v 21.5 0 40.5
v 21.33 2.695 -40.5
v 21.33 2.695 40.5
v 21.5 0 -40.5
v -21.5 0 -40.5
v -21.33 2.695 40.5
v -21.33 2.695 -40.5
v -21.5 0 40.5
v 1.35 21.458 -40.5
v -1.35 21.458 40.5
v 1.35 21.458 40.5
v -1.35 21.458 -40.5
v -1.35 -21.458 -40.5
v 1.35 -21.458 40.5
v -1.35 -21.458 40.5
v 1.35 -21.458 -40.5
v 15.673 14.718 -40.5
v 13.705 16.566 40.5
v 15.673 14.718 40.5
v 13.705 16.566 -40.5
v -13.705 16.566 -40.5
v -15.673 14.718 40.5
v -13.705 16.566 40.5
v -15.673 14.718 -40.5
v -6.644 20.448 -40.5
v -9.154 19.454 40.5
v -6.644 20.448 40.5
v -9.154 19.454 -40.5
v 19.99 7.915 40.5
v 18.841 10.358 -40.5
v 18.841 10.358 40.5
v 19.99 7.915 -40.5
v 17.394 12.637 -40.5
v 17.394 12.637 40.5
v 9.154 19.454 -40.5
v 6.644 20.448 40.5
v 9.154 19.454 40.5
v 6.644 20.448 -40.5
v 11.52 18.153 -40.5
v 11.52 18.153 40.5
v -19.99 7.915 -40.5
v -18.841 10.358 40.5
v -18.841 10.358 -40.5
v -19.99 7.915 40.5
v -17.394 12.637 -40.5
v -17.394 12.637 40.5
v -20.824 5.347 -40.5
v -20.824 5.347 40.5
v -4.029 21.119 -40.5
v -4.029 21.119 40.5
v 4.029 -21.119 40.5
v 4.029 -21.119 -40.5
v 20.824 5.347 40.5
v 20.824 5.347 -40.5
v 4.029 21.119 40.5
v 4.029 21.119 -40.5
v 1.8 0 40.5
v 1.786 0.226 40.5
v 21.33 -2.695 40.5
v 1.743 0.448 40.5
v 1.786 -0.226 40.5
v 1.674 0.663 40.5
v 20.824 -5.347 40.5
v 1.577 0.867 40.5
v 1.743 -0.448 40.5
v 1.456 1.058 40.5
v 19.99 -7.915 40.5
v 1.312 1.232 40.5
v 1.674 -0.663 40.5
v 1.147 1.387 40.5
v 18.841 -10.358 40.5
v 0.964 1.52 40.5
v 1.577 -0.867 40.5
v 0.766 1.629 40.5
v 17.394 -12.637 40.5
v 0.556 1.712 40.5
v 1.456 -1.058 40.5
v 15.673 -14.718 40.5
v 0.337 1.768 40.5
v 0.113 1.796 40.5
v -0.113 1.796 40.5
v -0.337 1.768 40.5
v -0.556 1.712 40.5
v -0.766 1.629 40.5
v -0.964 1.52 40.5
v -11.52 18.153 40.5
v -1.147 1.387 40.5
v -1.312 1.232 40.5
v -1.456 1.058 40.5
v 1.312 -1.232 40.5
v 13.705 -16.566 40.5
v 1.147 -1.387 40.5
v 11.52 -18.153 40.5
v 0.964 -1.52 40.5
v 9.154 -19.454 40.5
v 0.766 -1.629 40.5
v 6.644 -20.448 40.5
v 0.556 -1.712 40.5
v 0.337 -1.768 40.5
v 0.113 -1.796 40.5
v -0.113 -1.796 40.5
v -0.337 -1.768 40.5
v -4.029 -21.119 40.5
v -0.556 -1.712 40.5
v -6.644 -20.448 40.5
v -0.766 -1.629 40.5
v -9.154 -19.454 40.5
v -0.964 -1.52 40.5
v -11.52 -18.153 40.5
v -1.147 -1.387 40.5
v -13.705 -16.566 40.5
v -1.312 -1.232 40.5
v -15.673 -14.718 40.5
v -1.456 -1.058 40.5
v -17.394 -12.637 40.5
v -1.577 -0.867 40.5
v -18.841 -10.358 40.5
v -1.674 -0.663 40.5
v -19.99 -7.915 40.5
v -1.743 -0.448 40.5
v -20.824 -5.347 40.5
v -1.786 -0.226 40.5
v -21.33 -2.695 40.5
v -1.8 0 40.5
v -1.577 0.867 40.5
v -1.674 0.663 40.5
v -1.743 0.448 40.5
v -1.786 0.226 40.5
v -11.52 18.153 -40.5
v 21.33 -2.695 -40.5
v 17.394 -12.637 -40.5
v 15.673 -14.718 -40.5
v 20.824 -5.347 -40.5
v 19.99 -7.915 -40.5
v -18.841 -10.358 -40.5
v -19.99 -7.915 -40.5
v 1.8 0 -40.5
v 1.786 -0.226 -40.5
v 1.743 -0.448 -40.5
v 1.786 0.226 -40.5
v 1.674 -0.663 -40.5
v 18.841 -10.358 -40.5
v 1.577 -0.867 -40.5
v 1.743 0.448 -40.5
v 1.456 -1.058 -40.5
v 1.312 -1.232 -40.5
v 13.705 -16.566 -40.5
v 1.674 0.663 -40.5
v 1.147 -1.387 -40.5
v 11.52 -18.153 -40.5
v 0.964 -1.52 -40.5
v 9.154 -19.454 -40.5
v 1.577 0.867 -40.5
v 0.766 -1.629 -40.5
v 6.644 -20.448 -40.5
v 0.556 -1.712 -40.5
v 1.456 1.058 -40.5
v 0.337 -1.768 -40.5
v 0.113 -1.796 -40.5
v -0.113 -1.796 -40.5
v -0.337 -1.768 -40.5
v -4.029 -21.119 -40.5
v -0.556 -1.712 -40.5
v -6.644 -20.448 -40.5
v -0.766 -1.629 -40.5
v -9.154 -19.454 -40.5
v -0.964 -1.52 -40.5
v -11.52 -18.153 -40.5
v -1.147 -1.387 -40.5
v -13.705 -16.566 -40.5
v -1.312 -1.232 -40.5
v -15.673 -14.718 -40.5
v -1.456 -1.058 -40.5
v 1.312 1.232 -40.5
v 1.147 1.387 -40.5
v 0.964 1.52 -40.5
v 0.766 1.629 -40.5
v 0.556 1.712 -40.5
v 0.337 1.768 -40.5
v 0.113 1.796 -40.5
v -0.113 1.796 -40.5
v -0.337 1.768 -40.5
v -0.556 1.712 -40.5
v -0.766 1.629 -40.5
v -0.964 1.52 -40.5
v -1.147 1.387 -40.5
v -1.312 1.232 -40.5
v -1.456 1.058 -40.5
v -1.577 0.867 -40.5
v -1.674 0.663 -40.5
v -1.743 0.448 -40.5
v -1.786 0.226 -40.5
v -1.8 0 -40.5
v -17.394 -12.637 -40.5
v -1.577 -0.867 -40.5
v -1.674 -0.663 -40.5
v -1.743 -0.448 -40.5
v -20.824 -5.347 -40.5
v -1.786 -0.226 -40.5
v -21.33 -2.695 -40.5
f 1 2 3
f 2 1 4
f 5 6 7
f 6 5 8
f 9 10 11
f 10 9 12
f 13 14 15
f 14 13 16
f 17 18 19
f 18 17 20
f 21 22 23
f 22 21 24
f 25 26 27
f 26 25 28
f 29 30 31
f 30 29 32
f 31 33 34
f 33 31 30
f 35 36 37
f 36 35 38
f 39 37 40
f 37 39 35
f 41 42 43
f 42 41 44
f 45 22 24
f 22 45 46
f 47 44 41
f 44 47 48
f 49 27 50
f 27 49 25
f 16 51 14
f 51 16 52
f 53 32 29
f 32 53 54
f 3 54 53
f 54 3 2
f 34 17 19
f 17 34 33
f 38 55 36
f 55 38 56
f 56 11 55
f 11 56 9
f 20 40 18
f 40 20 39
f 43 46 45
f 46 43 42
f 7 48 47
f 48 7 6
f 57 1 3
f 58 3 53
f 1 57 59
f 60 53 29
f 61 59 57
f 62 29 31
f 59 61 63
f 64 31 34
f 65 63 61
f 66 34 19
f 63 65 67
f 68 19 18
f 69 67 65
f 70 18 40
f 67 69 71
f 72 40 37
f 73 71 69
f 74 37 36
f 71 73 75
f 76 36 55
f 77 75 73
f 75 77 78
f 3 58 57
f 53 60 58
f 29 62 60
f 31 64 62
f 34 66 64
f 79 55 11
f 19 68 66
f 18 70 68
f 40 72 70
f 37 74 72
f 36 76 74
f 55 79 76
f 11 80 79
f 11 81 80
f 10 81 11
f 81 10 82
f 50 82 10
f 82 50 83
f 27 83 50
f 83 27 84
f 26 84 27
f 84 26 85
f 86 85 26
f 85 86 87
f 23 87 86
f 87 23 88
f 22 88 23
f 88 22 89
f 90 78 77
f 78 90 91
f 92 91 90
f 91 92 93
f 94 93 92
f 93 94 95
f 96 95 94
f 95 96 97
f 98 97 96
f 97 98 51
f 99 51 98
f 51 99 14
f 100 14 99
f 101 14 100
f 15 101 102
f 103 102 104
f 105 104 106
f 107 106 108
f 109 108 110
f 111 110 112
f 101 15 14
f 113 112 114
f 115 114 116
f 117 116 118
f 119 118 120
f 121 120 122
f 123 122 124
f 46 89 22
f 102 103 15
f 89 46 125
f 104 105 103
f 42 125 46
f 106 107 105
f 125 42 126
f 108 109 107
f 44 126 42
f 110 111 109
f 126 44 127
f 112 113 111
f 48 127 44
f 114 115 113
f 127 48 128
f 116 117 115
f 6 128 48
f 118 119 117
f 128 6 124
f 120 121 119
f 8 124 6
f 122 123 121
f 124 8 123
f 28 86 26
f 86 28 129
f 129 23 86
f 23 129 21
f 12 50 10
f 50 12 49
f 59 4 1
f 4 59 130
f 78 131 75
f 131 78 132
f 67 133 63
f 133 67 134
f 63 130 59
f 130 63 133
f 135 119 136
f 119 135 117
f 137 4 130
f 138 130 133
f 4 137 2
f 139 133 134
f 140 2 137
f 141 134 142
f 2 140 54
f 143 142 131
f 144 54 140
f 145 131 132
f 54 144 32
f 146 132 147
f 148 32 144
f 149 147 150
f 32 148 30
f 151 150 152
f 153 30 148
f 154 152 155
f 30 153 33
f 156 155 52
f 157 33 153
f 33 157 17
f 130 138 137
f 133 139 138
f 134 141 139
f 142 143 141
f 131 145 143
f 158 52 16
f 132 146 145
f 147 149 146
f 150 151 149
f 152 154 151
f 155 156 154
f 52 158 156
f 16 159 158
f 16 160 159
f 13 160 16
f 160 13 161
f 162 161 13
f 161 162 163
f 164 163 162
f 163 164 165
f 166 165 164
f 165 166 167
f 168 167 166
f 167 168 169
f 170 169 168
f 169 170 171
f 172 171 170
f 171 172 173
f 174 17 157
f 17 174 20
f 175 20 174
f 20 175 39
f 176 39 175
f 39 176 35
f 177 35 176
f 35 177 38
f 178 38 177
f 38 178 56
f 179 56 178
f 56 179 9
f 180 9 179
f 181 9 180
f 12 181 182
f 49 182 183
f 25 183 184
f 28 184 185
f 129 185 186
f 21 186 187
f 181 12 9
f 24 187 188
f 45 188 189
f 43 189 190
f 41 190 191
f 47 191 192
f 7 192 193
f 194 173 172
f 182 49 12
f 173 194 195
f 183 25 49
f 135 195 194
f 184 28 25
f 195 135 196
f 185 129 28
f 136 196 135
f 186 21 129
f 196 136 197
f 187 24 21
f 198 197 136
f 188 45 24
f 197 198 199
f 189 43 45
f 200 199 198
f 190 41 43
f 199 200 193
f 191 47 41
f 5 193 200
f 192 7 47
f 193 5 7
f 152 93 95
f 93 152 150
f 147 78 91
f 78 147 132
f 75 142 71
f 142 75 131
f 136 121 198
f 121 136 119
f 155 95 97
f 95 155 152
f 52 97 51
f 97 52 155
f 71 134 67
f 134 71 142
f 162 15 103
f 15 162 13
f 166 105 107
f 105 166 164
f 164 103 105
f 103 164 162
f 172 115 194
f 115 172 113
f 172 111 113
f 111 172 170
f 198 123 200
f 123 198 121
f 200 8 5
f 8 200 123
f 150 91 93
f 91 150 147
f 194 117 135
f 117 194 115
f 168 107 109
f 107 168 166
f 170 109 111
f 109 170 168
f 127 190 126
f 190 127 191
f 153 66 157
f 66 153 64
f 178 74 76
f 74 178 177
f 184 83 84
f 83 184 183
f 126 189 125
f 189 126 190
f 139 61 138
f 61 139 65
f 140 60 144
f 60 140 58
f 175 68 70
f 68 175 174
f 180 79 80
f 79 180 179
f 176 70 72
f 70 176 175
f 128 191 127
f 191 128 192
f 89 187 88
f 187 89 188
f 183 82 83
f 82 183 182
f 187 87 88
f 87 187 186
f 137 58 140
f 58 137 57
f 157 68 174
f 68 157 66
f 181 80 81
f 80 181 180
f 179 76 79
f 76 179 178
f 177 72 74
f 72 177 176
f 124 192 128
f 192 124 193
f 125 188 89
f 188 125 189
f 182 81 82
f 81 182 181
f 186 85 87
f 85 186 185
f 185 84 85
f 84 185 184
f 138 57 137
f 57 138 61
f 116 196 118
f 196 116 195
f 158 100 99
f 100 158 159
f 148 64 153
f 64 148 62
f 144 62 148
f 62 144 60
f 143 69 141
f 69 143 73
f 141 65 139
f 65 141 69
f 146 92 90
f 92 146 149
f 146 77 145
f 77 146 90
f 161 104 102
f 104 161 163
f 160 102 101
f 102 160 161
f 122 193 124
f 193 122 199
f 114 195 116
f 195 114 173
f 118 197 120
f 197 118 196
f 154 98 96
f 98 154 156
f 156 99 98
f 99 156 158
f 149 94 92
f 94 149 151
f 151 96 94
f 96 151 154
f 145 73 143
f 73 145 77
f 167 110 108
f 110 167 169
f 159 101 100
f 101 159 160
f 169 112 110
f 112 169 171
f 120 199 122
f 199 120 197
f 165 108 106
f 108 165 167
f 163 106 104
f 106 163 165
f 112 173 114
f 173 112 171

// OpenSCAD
$fn = 50;


difference() {
	union() {
		translate(v = [0, 0, -40.5000000000]) {
			cylinder(h = 81, r = 21.5000000000);
		}
	}
	union() {
		translate(v = [0, 0, -100.0000000000]) {
			cylinder(h = 200, r = 1.8000000000);
		}
	}
}
